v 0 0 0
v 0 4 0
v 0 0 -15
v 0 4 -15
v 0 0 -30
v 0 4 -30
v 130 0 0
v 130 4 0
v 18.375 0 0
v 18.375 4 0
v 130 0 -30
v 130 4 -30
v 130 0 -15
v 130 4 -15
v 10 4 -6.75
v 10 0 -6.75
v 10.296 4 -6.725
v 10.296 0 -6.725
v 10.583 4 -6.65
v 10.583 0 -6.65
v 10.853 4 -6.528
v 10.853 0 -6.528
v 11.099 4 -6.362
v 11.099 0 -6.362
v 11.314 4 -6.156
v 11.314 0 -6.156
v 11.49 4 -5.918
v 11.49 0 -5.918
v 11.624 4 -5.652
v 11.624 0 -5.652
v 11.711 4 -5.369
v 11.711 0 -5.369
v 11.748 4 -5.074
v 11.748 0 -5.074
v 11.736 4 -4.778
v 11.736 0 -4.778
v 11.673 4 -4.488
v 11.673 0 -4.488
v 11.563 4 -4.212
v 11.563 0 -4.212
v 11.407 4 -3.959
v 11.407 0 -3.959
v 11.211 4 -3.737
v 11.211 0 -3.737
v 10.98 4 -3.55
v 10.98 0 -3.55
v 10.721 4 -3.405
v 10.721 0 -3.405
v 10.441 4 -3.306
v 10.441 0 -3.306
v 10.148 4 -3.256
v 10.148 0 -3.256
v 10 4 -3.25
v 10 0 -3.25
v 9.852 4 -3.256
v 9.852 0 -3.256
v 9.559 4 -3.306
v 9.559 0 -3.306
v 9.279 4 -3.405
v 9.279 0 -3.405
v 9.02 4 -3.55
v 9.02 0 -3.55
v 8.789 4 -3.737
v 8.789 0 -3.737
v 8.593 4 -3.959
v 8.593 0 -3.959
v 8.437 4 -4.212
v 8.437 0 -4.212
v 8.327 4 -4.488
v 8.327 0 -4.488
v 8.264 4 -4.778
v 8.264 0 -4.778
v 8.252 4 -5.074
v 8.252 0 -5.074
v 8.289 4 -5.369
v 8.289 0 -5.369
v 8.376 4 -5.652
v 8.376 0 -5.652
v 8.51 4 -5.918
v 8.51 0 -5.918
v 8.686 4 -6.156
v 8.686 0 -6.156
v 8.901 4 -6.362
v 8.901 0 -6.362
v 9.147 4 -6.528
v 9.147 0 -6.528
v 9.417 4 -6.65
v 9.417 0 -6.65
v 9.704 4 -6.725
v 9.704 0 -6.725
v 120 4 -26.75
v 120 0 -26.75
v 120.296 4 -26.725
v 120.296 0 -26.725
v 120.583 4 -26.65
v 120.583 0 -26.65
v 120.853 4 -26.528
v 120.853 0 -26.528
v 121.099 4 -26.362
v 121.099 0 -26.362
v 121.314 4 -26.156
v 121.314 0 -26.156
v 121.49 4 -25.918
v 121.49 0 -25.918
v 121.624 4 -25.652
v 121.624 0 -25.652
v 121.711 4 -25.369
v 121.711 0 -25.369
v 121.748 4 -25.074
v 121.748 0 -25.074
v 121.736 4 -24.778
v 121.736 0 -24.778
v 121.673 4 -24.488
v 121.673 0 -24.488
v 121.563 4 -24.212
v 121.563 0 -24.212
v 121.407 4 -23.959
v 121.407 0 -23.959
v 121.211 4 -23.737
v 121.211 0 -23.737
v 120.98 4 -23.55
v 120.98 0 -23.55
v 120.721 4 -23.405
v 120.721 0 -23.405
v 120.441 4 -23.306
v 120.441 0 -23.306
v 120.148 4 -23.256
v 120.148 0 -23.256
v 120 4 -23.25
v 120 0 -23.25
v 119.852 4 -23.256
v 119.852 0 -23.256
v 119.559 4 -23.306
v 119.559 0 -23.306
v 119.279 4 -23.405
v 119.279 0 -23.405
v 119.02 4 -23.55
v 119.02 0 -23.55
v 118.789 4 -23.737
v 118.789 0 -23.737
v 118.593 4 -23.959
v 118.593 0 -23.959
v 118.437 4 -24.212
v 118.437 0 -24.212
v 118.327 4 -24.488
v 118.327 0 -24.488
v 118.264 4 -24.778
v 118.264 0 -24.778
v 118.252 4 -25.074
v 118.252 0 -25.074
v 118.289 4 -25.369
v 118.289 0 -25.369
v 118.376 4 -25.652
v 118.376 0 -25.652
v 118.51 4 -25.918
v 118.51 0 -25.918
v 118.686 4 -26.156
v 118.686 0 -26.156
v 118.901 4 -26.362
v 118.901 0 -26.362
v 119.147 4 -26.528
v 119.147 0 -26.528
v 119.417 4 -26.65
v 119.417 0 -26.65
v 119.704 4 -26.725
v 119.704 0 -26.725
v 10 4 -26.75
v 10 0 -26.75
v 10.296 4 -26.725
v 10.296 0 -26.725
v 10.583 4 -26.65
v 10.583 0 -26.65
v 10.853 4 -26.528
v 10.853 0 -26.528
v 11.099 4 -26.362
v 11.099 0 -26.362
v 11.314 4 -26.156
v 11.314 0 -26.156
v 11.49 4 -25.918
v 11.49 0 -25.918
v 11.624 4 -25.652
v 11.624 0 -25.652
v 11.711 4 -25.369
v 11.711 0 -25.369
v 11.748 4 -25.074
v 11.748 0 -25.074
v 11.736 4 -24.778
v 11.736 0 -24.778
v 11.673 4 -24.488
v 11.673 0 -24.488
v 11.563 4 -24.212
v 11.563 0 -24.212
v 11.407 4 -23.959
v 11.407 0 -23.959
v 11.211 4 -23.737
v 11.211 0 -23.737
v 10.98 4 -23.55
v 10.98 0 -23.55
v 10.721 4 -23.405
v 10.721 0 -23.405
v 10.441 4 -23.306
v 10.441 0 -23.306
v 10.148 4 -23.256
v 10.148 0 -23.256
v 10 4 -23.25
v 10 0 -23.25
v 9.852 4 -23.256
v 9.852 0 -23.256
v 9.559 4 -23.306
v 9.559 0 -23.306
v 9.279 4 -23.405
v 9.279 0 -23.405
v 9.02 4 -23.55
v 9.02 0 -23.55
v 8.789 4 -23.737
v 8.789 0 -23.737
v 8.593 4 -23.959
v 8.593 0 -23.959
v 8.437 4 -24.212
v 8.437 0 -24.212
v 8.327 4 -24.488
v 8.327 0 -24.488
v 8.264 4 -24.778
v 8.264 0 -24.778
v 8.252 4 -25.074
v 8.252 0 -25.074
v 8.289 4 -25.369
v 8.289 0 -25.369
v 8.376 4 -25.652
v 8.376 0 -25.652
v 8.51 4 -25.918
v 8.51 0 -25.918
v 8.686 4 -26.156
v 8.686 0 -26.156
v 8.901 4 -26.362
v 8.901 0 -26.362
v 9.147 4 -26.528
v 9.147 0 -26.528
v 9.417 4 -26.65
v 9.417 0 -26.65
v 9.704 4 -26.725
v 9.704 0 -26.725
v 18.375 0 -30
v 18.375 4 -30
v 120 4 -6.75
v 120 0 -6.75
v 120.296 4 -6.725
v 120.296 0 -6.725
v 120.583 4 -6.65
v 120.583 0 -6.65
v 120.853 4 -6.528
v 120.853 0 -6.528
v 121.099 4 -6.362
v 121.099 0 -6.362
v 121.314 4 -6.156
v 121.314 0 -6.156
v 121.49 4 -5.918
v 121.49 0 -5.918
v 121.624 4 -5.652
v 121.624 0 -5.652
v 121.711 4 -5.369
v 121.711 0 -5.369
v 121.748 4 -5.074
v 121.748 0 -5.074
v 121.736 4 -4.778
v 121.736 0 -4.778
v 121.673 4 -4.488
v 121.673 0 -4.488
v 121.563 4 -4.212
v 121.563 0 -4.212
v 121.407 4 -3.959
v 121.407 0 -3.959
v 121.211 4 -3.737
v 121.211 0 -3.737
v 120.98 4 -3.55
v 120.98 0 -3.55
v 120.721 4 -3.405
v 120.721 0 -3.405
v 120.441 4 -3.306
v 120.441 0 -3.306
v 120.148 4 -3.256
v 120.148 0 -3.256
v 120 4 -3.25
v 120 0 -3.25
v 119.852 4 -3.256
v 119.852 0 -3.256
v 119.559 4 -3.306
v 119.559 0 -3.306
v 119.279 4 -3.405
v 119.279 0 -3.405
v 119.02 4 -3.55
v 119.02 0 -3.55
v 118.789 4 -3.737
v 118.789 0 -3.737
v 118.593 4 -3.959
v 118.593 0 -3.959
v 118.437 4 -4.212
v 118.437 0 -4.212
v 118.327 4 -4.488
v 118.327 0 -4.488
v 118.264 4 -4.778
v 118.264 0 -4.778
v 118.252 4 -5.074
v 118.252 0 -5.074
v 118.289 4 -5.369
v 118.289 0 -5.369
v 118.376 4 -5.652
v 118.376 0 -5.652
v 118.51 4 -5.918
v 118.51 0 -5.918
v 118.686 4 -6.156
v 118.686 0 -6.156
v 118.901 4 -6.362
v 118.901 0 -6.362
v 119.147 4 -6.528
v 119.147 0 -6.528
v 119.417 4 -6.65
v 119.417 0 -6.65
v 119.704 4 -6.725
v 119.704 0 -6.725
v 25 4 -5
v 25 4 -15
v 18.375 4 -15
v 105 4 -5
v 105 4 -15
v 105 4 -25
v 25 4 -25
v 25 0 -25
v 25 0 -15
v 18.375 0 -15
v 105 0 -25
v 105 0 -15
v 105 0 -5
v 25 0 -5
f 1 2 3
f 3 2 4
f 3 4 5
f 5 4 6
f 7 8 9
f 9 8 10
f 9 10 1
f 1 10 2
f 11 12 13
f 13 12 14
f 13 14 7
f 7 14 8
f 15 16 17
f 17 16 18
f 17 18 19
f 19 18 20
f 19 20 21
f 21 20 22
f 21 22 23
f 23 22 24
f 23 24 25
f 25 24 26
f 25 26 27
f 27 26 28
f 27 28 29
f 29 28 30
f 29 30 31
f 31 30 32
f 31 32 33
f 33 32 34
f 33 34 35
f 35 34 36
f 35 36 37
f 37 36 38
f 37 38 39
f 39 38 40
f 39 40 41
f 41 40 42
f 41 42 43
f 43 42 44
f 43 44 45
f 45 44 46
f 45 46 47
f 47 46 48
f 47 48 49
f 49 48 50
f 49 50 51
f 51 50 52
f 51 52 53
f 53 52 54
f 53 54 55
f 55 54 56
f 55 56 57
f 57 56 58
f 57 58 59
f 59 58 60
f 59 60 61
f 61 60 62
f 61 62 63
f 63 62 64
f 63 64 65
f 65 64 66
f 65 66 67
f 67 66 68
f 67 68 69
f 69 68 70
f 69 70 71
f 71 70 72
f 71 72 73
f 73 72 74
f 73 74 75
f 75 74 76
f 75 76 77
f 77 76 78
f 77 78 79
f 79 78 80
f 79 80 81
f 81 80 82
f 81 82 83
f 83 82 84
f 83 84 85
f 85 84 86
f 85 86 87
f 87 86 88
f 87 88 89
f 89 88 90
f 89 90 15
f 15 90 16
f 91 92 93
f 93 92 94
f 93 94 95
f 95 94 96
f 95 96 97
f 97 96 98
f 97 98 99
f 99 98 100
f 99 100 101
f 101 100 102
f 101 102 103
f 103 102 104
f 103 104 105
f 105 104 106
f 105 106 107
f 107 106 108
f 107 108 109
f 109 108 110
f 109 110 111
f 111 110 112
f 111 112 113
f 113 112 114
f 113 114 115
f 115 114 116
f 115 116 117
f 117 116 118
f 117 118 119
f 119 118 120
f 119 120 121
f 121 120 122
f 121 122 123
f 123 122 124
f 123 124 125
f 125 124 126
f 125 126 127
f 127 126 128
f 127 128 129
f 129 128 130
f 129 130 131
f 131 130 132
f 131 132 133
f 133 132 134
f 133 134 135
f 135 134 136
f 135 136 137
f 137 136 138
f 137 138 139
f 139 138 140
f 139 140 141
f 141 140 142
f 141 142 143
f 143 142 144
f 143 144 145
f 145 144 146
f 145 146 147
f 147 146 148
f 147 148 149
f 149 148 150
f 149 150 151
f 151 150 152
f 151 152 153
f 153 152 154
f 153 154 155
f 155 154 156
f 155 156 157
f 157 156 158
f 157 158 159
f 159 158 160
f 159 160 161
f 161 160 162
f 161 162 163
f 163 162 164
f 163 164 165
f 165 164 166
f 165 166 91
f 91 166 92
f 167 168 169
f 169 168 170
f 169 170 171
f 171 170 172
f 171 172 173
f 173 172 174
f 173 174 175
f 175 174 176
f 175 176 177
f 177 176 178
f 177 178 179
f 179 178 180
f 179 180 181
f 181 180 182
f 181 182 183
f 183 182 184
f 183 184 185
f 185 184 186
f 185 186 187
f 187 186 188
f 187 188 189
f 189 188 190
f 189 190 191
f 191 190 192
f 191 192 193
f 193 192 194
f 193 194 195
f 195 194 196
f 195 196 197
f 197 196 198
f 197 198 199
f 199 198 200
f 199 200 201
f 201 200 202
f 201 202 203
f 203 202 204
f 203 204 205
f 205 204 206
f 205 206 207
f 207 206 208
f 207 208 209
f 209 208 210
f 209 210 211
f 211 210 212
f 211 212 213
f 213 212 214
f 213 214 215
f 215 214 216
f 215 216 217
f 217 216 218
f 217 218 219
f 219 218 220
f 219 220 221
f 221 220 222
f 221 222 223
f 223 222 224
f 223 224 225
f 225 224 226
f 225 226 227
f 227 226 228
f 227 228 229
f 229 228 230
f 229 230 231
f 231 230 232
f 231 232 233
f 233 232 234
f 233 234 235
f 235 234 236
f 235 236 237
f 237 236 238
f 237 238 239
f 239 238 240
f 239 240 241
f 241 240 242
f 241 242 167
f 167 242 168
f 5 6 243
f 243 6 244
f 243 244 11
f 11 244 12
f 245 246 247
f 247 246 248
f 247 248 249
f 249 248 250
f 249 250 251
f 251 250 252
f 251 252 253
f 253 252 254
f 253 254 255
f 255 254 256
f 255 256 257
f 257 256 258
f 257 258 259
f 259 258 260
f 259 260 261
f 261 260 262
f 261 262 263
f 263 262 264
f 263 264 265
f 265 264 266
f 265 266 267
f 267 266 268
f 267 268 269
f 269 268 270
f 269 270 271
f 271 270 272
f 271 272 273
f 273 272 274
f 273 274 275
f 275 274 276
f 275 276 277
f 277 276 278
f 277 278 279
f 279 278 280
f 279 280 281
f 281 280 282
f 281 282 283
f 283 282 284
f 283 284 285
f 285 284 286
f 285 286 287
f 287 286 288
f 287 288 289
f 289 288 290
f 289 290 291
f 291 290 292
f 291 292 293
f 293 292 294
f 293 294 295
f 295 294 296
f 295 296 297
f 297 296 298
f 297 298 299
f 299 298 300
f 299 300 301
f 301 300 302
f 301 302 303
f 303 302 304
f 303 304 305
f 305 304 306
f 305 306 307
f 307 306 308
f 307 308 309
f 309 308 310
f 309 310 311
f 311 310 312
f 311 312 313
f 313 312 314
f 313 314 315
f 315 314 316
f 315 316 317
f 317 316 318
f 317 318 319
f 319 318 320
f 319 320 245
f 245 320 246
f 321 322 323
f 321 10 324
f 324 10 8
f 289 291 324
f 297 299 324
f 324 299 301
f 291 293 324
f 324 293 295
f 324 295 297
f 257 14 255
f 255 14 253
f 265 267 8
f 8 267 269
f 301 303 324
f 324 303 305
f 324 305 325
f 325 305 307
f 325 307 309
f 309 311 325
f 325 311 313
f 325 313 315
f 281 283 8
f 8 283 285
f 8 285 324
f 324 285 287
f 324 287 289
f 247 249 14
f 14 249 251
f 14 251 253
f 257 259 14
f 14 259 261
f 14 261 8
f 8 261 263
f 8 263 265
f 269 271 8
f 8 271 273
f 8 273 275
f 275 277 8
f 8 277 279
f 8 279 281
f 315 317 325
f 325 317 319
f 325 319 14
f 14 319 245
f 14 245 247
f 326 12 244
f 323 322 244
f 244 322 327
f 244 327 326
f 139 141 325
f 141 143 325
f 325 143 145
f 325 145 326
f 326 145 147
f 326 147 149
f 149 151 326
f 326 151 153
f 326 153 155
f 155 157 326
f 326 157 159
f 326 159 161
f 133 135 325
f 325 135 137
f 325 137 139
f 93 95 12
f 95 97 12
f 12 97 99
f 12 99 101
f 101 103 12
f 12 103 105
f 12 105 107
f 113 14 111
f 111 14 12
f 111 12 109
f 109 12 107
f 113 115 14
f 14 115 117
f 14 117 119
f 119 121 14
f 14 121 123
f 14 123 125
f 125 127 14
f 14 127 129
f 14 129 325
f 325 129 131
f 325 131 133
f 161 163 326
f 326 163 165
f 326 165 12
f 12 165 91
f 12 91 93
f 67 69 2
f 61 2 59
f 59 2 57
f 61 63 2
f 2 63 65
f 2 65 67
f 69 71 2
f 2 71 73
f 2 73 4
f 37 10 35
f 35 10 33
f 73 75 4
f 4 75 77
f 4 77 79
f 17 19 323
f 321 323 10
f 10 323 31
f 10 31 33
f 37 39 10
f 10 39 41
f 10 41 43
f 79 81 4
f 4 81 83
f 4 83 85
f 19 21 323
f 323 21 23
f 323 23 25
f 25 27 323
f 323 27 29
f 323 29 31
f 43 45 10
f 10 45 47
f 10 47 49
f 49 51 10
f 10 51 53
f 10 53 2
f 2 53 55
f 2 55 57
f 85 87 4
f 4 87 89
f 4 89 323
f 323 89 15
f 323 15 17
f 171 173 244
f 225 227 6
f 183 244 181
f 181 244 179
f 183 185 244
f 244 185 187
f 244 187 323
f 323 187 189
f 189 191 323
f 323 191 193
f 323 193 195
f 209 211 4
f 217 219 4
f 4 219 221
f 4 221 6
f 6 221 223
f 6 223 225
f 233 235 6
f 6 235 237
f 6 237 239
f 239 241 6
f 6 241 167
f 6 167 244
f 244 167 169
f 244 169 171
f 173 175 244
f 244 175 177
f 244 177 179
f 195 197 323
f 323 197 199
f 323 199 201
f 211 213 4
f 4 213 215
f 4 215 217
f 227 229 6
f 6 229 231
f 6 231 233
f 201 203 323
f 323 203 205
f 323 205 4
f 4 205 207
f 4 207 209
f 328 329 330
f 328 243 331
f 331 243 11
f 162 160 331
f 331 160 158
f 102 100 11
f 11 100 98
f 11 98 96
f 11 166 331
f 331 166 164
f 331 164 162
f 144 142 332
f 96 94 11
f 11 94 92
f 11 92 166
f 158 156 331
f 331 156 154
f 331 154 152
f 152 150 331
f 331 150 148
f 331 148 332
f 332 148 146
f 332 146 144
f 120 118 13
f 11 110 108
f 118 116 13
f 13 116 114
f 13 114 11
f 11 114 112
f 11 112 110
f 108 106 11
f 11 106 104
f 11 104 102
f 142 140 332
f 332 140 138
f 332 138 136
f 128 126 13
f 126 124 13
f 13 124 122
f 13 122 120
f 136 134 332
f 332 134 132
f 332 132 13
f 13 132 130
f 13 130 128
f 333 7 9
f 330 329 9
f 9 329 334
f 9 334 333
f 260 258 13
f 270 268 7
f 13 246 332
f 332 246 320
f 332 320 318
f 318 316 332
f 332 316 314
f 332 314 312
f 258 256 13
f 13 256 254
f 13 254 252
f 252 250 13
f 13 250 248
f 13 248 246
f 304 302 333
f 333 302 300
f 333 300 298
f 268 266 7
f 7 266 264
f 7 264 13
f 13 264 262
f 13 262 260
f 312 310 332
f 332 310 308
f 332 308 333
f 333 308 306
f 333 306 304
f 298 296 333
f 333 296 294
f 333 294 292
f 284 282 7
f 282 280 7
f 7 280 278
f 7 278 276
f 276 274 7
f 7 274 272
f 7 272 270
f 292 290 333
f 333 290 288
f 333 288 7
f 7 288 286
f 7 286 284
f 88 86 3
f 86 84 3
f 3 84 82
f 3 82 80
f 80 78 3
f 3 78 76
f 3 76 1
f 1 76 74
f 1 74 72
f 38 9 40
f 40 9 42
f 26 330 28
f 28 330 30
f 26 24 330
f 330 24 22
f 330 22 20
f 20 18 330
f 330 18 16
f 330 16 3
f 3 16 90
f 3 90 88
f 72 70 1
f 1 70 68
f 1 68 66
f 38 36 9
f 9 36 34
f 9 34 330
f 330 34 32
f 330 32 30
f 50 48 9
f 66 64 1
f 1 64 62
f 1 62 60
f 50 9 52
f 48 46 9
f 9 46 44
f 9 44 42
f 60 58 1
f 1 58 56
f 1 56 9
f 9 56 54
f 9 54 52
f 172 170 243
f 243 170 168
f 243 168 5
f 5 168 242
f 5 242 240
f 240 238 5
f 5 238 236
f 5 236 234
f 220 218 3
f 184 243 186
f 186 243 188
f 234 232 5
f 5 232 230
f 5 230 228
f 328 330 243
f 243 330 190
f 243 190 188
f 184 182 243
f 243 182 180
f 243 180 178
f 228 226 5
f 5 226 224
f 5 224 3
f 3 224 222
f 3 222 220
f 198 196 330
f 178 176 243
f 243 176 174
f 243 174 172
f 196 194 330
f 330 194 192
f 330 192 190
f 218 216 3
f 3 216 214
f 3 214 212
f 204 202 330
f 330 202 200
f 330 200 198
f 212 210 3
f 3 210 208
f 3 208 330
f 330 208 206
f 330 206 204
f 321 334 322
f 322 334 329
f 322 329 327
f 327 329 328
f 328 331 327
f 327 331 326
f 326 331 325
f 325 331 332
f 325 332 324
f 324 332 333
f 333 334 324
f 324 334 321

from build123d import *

# Parameters (mm, degrees)
SKETCH1_W           = 130
SKETCH1_H           = 30
SKETCH1_R           = 1.75
BOSS_EXTRUDE1_DEPTH = 4
SKETCH2_W           = 80
SKETCH2_H           = 20
CUT_EXTRUDE1_DEPTH  = 134.476589708


with BuildPart() as part:
    # Sketch1 → Boss-Extrude1 (new body)
    with BuildSketch(Plane(origin=(0, 0, 0), x_dir=(1, 0, 0), z_dir=(0, 1, 0))):
        with Locations((65, 15)):
            Rectangle(SKETCH1_W, SKETCH1_H)
        with Locations(Location((120, 25, 0), (0, 0, 270))):
            Circle(SKETCH1_R, mode=Mode.SUBTRACT)
        with Locations(Location((120, 5, 0), (0, 0, 270))):
            Circle(SKETCH1_R, mode=Mode.SUBTRACT)
        with Locations(Location((10, 5, 0), (0, 0, 270))):
            Circle(SKETCH1_R, mode=Mode.SUBTRACT)
        with Locations(Location((10, 25, 0), (0, 0, 270))):
            Circle(SKETCH1_R, mode=Mode.SUBTRACT)
    extrude(amount=BOSS_EXTRUDE1_DEPTH)

    # Sketch2 → Cut-Extrude1 (cut, through all)
    with BuildSketch(Plane(origin=(0, 4, 0), x_dir=(1, 0, 0), z_dir=(0, 1, 0))):
        with Locations((65, 15)):
            Rectangle(SKETCH2_W, SKETCH2_H)
    extrude(amount=-CUT_EXTRUDE1_DEPTH, mode=Mode.SUBTRACT)


solid = part.part
